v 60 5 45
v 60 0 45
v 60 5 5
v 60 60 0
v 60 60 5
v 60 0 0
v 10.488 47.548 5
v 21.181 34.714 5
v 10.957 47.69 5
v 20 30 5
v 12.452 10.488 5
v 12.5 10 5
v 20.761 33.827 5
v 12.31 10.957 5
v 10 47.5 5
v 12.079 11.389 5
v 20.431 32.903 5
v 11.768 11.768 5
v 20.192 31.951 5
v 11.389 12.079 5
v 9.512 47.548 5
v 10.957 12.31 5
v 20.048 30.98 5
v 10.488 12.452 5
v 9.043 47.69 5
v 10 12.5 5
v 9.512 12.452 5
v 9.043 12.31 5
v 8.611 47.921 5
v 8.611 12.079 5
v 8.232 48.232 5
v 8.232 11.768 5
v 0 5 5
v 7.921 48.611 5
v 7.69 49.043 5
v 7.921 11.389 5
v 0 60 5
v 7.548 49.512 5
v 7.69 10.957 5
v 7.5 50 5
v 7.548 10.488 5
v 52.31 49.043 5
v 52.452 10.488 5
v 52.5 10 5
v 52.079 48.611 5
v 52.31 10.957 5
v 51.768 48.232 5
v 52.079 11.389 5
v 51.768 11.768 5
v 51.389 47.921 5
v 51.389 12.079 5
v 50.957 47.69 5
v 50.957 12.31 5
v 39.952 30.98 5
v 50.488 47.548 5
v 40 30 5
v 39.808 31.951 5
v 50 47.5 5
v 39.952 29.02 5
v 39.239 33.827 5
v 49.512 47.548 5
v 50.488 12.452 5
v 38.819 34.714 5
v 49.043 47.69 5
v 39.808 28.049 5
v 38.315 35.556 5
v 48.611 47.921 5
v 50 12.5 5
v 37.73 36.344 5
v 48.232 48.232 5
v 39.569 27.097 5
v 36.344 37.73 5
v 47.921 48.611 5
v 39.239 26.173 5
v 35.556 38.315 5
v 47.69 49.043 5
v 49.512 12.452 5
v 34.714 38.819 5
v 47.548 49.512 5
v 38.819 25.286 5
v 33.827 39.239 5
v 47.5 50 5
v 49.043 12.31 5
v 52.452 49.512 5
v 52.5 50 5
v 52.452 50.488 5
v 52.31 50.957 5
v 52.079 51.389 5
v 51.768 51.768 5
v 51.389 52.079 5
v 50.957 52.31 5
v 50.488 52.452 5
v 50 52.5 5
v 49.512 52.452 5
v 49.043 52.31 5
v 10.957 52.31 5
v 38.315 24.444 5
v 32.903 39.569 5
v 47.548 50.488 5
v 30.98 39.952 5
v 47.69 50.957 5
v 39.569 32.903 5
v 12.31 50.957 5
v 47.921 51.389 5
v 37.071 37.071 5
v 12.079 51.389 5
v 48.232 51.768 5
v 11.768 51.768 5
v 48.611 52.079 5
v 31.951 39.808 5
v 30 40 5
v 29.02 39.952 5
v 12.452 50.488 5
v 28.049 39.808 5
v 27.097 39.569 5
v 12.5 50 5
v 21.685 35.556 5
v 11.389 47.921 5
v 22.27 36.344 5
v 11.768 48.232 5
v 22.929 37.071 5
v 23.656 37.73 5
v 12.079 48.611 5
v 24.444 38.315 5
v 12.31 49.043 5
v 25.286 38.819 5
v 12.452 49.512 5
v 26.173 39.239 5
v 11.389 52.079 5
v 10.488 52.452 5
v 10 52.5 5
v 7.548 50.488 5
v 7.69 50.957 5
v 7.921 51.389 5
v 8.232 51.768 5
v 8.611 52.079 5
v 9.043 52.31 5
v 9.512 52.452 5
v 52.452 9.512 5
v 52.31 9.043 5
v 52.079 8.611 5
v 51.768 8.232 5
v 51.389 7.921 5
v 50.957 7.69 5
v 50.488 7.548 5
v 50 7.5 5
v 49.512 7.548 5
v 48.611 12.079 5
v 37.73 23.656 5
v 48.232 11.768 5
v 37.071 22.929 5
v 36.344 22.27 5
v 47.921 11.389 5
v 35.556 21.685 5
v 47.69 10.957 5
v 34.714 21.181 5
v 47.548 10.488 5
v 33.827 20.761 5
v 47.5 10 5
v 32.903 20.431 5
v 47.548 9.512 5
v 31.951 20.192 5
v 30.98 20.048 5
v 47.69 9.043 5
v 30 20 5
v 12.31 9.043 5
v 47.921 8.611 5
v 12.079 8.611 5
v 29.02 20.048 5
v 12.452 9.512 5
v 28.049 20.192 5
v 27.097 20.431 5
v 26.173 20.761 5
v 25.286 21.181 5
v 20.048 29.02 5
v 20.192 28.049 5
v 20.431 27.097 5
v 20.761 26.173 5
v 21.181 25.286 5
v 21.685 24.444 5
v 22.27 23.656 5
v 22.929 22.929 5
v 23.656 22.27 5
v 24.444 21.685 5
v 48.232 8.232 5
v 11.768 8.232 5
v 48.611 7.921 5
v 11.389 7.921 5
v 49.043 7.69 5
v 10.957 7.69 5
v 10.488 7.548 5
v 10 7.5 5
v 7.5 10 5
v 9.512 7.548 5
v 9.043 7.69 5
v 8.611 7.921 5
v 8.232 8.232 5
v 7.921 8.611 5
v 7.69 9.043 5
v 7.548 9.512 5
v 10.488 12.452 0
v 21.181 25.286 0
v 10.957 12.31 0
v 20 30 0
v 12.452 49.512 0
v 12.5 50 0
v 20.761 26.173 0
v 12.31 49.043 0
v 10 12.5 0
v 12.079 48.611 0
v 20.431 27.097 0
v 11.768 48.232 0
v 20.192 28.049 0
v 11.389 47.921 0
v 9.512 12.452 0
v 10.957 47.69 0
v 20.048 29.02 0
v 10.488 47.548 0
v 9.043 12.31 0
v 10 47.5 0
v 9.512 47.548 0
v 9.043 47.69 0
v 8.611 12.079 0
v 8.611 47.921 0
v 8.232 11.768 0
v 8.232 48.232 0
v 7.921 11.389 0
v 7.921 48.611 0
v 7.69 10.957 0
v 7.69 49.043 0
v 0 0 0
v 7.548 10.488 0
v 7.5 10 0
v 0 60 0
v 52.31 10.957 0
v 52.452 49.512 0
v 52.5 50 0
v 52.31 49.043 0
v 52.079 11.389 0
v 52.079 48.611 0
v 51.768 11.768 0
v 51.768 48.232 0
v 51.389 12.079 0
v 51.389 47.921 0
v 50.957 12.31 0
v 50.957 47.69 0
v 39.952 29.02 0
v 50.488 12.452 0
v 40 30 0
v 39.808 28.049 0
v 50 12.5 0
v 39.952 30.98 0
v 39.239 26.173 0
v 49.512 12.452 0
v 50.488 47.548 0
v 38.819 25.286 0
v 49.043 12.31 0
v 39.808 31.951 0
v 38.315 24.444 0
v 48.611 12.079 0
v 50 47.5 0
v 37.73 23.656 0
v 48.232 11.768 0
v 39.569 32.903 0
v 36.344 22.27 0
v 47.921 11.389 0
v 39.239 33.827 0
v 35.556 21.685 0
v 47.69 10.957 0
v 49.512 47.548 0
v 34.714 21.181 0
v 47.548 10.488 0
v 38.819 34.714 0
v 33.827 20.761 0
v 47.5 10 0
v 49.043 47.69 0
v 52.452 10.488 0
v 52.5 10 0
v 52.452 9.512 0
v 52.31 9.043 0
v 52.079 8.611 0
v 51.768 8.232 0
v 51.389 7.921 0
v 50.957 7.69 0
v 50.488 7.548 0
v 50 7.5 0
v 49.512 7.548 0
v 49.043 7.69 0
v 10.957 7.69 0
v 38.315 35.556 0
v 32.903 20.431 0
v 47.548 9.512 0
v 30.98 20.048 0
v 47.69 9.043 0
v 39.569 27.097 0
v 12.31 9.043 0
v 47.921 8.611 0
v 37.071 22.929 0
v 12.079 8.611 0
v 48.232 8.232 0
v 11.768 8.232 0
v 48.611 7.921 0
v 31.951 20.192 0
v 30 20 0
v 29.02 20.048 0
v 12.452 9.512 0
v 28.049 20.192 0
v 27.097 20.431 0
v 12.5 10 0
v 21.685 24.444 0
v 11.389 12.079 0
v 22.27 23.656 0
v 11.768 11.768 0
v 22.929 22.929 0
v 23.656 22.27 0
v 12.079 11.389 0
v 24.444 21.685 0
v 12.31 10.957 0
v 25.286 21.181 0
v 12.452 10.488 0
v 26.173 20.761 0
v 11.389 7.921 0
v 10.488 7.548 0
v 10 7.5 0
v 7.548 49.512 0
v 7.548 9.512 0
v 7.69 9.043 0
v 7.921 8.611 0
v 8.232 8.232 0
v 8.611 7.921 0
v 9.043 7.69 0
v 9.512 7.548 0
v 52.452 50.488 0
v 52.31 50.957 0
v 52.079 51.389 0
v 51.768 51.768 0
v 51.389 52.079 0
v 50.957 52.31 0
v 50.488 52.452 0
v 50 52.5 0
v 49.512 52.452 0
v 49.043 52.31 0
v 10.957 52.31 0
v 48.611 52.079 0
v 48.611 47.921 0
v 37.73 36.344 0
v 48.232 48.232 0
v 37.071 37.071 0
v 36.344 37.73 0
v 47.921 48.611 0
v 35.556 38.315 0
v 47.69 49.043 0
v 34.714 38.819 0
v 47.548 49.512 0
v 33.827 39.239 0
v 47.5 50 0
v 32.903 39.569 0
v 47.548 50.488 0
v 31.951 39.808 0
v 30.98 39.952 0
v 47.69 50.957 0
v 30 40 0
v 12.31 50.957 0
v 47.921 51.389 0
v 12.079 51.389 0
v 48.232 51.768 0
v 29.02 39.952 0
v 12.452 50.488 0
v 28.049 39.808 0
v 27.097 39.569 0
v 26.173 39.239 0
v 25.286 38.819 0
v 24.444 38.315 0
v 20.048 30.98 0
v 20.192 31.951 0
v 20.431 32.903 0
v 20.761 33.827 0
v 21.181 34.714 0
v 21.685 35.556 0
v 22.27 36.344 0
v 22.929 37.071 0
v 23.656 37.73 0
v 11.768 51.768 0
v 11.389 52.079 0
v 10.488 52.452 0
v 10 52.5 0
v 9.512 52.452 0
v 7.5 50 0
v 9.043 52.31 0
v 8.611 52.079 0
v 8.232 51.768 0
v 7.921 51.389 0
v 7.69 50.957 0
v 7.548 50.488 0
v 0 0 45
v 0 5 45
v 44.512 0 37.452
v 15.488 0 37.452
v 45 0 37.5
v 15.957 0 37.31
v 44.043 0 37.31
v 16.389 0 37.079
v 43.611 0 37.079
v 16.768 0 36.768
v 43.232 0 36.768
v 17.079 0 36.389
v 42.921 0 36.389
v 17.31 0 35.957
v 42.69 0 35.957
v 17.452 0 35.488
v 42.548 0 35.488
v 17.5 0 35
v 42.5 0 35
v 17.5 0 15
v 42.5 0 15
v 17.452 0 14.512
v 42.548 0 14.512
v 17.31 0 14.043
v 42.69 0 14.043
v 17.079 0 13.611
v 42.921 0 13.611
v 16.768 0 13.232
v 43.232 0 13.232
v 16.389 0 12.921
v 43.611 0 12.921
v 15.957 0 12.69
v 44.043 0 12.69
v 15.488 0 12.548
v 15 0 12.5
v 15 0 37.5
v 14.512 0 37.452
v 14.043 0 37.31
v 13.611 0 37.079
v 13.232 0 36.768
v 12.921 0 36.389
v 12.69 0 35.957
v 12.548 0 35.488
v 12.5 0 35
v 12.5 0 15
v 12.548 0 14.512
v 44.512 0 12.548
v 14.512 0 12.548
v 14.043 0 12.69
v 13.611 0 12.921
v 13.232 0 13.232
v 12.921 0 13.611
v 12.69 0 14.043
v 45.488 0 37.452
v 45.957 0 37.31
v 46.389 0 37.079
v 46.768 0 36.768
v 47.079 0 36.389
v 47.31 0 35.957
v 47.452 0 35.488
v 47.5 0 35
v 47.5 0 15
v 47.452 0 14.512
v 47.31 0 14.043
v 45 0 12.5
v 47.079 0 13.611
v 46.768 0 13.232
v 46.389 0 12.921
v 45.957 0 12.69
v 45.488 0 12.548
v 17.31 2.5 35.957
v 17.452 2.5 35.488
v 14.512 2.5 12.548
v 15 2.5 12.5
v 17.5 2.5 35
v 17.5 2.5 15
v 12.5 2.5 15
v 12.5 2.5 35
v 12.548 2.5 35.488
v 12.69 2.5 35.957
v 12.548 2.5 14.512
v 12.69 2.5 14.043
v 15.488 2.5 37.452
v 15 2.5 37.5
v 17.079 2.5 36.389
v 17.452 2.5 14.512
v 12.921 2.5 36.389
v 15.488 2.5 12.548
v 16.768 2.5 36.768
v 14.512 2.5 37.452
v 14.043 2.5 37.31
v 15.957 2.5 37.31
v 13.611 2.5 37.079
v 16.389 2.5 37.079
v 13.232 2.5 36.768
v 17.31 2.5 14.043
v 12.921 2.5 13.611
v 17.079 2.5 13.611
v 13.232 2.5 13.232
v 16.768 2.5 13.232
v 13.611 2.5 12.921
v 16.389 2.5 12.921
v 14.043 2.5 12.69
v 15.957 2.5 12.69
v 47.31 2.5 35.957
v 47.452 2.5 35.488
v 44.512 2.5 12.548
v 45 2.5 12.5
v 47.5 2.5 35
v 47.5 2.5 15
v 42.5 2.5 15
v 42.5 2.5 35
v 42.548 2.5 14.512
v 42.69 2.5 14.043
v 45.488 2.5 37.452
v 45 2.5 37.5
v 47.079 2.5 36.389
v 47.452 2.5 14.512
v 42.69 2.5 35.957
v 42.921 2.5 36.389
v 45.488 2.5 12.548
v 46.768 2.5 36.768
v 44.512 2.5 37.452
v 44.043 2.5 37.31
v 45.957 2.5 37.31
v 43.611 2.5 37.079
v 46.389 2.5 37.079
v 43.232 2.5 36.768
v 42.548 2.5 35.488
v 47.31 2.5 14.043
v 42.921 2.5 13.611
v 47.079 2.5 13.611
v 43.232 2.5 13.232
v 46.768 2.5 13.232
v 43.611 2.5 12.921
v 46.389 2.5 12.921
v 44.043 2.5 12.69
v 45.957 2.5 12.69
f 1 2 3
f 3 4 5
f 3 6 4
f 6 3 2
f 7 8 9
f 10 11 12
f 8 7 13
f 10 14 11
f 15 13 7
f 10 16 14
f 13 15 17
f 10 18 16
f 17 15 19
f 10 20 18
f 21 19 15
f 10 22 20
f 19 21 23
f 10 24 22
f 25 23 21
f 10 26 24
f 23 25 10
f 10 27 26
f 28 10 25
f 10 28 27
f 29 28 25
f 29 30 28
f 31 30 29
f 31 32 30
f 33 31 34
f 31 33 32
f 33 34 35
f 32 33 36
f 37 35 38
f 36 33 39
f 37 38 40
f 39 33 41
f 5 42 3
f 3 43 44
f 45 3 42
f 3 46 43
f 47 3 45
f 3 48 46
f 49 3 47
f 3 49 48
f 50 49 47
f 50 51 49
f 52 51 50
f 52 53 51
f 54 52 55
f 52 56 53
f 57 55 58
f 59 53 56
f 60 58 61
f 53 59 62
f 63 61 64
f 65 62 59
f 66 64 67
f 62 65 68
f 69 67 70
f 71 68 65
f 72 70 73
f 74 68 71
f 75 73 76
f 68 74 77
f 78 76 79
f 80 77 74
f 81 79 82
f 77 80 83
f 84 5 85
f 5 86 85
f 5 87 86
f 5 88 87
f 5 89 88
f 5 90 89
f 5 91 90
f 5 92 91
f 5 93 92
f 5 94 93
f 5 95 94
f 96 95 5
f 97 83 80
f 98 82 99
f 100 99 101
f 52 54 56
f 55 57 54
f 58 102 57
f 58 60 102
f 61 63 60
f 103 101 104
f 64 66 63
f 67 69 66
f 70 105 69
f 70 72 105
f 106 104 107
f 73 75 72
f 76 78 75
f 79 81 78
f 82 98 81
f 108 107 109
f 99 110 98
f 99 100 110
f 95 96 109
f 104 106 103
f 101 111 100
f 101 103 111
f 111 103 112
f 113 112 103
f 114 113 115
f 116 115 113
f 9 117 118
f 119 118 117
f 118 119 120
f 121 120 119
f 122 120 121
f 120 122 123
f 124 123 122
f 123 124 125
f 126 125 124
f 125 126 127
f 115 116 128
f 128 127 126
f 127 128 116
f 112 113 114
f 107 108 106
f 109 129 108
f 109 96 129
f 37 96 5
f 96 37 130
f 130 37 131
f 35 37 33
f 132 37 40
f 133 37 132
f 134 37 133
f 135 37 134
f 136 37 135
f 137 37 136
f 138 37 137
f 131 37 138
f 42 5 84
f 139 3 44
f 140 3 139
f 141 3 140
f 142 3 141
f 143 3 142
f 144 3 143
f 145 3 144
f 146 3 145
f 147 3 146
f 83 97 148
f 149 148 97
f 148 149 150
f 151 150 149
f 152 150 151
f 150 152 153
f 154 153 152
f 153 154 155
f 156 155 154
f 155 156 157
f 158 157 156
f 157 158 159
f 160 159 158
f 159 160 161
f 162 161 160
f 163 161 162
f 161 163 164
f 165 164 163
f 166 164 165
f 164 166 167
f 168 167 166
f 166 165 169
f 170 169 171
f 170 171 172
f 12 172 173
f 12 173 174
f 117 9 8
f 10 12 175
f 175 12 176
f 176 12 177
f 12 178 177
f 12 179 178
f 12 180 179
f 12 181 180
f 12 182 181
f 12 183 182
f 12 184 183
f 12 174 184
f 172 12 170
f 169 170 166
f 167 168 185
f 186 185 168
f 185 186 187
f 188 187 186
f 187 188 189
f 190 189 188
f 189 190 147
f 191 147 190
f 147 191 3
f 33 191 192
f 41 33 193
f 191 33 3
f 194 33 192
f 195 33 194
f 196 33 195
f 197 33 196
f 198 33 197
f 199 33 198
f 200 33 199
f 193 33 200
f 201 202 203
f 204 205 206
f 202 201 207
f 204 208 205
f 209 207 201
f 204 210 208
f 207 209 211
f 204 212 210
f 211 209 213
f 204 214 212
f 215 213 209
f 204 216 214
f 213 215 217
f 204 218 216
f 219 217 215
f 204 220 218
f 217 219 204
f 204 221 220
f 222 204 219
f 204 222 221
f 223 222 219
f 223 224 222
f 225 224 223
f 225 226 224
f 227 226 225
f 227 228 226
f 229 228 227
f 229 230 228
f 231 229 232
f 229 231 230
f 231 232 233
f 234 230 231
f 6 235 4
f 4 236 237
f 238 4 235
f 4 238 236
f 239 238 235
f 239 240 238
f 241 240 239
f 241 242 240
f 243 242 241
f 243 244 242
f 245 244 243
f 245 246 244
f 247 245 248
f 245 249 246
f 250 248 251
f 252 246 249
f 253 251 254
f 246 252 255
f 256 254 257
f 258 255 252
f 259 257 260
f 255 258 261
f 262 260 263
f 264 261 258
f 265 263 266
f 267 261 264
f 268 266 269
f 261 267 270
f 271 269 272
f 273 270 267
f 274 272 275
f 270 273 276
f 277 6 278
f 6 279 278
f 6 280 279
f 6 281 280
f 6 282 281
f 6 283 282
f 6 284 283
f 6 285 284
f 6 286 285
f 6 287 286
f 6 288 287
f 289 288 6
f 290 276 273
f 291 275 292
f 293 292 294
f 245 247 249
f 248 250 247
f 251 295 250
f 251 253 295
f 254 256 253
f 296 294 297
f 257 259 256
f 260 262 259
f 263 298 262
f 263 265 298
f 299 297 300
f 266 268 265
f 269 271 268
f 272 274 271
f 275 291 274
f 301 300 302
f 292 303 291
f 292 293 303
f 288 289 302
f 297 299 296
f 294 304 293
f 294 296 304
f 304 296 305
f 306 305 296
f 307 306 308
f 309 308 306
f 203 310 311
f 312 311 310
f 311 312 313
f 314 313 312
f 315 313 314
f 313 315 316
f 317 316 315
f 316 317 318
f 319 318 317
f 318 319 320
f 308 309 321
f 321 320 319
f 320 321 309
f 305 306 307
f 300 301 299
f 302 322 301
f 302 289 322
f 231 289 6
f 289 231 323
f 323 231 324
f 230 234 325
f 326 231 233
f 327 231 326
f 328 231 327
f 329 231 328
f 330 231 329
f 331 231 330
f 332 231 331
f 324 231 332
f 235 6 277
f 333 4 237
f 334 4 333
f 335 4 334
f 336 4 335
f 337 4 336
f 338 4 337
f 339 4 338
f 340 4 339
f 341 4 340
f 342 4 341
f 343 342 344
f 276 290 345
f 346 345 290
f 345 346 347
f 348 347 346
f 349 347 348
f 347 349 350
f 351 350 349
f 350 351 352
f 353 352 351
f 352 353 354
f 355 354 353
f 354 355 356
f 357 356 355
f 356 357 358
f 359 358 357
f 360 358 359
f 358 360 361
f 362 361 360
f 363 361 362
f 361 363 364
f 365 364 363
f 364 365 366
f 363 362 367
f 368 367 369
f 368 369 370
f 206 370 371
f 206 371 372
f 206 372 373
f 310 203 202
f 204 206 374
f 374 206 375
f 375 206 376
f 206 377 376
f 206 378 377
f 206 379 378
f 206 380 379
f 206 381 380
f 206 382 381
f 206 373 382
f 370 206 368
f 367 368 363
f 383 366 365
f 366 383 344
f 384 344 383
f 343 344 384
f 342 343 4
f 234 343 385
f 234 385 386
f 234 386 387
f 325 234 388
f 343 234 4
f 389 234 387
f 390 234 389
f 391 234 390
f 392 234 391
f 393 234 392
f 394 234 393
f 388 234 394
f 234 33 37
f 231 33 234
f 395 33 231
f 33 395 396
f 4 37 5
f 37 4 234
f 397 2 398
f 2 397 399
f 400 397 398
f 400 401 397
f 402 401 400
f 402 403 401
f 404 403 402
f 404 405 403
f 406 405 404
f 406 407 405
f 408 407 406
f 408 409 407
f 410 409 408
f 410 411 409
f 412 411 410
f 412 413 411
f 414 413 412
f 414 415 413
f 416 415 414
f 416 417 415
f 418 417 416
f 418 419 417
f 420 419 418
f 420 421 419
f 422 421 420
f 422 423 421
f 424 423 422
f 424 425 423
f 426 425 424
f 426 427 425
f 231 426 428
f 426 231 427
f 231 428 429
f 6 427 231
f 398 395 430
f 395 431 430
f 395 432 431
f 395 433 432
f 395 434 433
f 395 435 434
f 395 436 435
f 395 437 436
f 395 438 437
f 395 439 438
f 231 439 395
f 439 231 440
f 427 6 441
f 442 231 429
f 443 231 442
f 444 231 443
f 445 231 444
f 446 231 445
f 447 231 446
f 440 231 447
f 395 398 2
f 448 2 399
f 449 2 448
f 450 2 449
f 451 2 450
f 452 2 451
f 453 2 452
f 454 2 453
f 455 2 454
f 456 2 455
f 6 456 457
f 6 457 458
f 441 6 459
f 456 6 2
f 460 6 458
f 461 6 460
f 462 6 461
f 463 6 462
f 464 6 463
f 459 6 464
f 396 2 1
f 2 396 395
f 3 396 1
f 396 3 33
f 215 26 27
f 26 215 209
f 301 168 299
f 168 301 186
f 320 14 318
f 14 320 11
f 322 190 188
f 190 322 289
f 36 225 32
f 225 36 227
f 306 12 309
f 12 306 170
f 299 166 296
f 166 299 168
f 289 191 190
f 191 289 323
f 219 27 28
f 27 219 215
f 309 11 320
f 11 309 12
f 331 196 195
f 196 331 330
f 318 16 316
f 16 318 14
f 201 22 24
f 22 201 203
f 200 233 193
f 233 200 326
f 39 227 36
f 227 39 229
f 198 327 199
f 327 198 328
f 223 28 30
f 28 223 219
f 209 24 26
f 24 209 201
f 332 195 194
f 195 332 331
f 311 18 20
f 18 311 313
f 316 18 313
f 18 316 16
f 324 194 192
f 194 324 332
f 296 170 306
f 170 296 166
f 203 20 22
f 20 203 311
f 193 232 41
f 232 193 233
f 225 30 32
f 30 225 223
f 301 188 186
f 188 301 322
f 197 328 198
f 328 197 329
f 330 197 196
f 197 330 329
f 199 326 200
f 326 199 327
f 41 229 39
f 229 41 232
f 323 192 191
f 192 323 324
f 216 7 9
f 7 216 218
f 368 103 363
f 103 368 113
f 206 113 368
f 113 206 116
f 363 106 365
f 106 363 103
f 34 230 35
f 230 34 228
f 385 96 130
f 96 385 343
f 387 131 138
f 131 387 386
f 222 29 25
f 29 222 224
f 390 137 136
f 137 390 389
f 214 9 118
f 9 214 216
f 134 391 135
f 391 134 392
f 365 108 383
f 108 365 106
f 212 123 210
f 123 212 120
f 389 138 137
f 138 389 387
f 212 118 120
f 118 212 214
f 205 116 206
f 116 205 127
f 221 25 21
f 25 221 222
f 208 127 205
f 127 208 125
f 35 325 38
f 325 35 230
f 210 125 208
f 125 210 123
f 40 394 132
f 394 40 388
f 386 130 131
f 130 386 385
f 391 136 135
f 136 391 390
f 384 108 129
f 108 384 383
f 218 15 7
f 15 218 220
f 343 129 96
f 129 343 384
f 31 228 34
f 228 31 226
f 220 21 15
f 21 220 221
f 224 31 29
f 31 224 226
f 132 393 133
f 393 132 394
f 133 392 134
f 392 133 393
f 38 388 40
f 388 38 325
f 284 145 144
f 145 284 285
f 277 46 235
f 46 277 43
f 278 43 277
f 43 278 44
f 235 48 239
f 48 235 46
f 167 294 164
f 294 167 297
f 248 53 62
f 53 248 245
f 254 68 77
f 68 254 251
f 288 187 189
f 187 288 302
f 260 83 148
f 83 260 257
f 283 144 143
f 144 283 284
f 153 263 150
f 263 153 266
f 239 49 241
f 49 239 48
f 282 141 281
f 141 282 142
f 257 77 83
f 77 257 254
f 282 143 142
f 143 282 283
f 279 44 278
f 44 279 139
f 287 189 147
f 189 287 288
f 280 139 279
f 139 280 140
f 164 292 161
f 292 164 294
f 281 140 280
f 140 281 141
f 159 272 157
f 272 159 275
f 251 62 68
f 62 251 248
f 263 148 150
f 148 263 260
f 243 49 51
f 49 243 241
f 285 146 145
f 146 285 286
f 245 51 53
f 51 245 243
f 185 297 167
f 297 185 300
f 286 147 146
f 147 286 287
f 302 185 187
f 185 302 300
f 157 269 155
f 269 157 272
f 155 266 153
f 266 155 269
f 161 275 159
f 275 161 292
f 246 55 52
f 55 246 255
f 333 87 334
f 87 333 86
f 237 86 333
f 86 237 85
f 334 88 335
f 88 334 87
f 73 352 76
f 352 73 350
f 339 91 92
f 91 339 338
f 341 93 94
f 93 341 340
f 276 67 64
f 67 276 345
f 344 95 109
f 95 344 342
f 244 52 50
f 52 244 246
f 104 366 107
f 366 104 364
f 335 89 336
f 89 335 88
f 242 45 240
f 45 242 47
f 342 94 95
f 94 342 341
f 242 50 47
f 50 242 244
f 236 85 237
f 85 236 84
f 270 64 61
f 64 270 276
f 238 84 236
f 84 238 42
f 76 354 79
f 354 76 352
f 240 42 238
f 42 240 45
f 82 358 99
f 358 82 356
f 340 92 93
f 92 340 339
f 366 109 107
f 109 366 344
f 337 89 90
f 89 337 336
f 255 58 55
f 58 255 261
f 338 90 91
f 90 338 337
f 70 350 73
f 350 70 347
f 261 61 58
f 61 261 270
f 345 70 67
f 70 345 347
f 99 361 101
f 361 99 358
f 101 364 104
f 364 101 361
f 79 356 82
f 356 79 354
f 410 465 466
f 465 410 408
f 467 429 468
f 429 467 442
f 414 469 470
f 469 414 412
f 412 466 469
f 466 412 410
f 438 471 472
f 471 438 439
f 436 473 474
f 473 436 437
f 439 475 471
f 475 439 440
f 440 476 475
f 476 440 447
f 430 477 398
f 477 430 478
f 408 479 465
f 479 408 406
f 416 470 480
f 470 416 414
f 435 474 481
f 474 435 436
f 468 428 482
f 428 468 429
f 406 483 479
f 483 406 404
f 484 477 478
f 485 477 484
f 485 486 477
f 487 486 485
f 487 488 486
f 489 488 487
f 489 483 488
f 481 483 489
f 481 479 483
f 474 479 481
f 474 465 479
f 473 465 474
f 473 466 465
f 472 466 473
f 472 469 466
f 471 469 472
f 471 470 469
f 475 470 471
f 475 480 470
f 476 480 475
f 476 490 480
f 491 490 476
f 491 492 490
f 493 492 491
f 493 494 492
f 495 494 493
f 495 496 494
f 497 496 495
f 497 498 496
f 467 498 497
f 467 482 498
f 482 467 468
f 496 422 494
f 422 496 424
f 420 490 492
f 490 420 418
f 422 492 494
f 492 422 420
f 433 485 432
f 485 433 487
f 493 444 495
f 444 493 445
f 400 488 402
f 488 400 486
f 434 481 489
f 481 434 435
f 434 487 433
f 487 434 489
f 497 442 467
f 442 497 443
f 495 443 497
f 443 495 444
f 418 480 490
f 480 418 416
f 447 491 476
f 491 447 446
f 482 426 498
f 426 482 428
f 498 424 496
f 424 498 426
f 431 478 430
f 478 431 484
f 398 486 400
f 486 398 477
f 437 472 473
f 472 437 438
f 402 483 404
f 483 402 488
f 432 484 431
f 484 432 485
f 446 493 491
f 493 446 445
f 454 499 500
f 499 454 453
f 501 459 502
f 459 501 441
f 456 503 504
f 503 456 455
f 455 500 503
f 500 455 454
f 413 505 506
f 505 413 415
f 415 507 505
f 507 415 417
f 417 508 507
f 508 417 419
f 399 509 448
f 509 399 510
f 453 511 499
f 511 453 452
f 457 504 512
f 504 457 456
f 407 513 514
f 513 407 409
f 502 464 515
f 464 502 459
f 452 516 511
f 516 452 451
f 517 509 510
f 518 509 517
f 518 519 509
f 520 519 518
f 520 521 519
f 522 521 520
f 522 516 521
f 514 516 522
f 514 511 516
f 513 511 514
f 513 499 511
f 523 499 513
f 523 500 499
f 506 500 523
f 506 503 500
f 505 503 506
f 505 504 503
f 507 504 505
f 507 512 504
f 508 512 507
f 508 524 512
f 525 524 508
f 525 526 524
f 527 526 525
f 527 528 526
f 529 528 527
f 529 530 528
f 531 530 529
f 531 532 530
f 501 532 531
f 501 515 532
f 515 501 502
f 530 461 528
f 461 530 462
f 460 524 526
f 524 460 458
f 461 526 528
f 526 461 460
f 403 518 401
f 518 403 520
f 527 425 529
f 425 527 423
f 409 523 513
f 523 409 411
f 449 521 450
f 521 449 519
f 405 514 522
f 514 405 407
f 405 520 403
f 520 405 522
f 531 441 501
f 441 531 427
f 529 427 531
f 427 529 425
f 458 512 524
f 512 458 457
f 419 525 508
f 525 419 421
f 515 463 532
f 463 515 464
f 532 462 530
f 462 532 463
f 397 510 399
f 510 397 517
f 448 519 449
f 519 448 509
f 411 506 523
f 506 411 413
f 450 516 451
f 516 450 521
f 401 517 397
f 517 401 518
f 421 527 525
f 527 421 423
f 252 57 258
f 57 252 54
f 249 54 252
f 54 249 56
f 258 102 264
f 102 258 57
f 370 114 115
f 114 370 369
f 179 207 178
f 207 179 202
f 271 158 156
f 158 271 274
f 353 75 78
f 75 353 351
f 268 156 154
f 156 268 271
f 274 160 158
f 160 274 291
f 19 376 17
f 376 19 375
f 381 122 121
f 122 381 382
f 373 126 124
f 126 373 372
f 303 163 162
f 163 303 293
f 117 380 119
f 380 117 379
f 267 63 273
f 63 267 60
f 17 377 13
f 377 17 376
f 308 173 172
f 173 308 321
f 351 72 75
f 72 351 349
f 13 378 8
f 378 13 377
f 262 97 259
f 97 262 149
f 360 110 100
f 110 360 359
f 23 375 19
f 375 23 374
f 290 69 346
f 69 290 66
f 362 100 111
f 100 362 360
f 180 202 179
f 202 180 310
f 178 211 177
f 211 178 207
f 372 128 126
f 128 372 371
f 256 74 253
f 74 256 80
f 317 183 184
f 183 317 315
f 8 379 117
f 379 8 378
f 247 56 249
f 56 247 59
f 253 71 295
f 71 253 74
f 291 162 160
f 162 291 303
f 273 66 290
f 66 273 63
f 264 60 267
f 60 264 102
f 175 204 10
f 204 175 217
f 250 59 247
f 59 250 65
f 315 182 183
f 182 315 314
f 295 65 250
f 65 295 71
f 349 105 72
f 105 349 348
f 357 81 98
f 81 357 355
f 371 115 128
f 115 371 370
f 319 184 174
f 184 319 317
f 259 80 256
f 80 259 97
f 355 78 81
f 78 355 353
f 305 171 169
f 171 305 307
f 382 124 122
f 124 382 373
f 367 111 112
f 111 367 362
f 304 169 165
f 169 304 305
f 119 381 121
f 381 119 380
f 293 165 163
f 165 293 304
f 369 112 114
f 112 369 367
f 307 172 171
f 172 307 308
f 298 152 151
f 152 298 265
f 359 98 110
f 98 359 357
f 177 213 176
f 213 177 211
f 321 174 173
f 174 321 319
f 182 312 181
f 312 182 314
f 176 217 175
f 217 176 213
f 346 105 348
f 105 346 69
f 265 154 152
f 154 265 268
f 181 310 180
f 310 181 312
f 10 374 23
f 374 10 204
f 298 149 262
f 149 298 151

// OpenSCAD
// Parameters
bracket_thickness = 5;
base_length = 60;
base_width = 60;
vertical_height = 40;
hole_radius = 10;
corner_hole_radius = 2.5;
slot_width = 5;
slot_height = 20;
slot_offset_x = 15;
slot_spacing = 30;

// Main L-bracket
module mounting_bracket() {
    difference() {
        union() {
            // Horizontal base plate
            cube([base_length, base_width, bracket_thickness]);

            // Vertical plate
            translate([0, 0, bracket_thickness])
                cube([base_length, bracket_thickness, vertical_height]);
        }

        // Central large hole
        translate([base_length/2, base_width/2, -1])
            cylinder(h = bracket_thickness + 2, r = hole_radius, $fn=64);

        // Corner holes
        for (x = [10, base_length - 10])
            for (y = [10, base_width - 10])
                translate([x, y, -1])
                    cylinder(h = bracket_thickness + 2, r = corner_hole_radius, $fn=32);

        // Vertical slots in vertical plate
        for (i = [0, 1]) {
            translate([slot_offset_x + i * slot_spacing, bracket_thickness/2, bracket_thickness + (vertical_height - slot_height)/2])
                rotate([90, 0, 0])
                    rounded_slot(slot_width, slot_height, bracket_thickness + 2);
        }
    }
}

// Helper module for rounded slot
module rounded_slot(width, height, depth) {
    hull() {
        translate([0, 0, 0])
            cylinder(h = depth, r = width/2, $fn=32);
        translate([0, height, 0])
            cylinder(h = depth, r = width/2, $fn=32);
    }
}

// Render the bracket
mounting_bracket();
